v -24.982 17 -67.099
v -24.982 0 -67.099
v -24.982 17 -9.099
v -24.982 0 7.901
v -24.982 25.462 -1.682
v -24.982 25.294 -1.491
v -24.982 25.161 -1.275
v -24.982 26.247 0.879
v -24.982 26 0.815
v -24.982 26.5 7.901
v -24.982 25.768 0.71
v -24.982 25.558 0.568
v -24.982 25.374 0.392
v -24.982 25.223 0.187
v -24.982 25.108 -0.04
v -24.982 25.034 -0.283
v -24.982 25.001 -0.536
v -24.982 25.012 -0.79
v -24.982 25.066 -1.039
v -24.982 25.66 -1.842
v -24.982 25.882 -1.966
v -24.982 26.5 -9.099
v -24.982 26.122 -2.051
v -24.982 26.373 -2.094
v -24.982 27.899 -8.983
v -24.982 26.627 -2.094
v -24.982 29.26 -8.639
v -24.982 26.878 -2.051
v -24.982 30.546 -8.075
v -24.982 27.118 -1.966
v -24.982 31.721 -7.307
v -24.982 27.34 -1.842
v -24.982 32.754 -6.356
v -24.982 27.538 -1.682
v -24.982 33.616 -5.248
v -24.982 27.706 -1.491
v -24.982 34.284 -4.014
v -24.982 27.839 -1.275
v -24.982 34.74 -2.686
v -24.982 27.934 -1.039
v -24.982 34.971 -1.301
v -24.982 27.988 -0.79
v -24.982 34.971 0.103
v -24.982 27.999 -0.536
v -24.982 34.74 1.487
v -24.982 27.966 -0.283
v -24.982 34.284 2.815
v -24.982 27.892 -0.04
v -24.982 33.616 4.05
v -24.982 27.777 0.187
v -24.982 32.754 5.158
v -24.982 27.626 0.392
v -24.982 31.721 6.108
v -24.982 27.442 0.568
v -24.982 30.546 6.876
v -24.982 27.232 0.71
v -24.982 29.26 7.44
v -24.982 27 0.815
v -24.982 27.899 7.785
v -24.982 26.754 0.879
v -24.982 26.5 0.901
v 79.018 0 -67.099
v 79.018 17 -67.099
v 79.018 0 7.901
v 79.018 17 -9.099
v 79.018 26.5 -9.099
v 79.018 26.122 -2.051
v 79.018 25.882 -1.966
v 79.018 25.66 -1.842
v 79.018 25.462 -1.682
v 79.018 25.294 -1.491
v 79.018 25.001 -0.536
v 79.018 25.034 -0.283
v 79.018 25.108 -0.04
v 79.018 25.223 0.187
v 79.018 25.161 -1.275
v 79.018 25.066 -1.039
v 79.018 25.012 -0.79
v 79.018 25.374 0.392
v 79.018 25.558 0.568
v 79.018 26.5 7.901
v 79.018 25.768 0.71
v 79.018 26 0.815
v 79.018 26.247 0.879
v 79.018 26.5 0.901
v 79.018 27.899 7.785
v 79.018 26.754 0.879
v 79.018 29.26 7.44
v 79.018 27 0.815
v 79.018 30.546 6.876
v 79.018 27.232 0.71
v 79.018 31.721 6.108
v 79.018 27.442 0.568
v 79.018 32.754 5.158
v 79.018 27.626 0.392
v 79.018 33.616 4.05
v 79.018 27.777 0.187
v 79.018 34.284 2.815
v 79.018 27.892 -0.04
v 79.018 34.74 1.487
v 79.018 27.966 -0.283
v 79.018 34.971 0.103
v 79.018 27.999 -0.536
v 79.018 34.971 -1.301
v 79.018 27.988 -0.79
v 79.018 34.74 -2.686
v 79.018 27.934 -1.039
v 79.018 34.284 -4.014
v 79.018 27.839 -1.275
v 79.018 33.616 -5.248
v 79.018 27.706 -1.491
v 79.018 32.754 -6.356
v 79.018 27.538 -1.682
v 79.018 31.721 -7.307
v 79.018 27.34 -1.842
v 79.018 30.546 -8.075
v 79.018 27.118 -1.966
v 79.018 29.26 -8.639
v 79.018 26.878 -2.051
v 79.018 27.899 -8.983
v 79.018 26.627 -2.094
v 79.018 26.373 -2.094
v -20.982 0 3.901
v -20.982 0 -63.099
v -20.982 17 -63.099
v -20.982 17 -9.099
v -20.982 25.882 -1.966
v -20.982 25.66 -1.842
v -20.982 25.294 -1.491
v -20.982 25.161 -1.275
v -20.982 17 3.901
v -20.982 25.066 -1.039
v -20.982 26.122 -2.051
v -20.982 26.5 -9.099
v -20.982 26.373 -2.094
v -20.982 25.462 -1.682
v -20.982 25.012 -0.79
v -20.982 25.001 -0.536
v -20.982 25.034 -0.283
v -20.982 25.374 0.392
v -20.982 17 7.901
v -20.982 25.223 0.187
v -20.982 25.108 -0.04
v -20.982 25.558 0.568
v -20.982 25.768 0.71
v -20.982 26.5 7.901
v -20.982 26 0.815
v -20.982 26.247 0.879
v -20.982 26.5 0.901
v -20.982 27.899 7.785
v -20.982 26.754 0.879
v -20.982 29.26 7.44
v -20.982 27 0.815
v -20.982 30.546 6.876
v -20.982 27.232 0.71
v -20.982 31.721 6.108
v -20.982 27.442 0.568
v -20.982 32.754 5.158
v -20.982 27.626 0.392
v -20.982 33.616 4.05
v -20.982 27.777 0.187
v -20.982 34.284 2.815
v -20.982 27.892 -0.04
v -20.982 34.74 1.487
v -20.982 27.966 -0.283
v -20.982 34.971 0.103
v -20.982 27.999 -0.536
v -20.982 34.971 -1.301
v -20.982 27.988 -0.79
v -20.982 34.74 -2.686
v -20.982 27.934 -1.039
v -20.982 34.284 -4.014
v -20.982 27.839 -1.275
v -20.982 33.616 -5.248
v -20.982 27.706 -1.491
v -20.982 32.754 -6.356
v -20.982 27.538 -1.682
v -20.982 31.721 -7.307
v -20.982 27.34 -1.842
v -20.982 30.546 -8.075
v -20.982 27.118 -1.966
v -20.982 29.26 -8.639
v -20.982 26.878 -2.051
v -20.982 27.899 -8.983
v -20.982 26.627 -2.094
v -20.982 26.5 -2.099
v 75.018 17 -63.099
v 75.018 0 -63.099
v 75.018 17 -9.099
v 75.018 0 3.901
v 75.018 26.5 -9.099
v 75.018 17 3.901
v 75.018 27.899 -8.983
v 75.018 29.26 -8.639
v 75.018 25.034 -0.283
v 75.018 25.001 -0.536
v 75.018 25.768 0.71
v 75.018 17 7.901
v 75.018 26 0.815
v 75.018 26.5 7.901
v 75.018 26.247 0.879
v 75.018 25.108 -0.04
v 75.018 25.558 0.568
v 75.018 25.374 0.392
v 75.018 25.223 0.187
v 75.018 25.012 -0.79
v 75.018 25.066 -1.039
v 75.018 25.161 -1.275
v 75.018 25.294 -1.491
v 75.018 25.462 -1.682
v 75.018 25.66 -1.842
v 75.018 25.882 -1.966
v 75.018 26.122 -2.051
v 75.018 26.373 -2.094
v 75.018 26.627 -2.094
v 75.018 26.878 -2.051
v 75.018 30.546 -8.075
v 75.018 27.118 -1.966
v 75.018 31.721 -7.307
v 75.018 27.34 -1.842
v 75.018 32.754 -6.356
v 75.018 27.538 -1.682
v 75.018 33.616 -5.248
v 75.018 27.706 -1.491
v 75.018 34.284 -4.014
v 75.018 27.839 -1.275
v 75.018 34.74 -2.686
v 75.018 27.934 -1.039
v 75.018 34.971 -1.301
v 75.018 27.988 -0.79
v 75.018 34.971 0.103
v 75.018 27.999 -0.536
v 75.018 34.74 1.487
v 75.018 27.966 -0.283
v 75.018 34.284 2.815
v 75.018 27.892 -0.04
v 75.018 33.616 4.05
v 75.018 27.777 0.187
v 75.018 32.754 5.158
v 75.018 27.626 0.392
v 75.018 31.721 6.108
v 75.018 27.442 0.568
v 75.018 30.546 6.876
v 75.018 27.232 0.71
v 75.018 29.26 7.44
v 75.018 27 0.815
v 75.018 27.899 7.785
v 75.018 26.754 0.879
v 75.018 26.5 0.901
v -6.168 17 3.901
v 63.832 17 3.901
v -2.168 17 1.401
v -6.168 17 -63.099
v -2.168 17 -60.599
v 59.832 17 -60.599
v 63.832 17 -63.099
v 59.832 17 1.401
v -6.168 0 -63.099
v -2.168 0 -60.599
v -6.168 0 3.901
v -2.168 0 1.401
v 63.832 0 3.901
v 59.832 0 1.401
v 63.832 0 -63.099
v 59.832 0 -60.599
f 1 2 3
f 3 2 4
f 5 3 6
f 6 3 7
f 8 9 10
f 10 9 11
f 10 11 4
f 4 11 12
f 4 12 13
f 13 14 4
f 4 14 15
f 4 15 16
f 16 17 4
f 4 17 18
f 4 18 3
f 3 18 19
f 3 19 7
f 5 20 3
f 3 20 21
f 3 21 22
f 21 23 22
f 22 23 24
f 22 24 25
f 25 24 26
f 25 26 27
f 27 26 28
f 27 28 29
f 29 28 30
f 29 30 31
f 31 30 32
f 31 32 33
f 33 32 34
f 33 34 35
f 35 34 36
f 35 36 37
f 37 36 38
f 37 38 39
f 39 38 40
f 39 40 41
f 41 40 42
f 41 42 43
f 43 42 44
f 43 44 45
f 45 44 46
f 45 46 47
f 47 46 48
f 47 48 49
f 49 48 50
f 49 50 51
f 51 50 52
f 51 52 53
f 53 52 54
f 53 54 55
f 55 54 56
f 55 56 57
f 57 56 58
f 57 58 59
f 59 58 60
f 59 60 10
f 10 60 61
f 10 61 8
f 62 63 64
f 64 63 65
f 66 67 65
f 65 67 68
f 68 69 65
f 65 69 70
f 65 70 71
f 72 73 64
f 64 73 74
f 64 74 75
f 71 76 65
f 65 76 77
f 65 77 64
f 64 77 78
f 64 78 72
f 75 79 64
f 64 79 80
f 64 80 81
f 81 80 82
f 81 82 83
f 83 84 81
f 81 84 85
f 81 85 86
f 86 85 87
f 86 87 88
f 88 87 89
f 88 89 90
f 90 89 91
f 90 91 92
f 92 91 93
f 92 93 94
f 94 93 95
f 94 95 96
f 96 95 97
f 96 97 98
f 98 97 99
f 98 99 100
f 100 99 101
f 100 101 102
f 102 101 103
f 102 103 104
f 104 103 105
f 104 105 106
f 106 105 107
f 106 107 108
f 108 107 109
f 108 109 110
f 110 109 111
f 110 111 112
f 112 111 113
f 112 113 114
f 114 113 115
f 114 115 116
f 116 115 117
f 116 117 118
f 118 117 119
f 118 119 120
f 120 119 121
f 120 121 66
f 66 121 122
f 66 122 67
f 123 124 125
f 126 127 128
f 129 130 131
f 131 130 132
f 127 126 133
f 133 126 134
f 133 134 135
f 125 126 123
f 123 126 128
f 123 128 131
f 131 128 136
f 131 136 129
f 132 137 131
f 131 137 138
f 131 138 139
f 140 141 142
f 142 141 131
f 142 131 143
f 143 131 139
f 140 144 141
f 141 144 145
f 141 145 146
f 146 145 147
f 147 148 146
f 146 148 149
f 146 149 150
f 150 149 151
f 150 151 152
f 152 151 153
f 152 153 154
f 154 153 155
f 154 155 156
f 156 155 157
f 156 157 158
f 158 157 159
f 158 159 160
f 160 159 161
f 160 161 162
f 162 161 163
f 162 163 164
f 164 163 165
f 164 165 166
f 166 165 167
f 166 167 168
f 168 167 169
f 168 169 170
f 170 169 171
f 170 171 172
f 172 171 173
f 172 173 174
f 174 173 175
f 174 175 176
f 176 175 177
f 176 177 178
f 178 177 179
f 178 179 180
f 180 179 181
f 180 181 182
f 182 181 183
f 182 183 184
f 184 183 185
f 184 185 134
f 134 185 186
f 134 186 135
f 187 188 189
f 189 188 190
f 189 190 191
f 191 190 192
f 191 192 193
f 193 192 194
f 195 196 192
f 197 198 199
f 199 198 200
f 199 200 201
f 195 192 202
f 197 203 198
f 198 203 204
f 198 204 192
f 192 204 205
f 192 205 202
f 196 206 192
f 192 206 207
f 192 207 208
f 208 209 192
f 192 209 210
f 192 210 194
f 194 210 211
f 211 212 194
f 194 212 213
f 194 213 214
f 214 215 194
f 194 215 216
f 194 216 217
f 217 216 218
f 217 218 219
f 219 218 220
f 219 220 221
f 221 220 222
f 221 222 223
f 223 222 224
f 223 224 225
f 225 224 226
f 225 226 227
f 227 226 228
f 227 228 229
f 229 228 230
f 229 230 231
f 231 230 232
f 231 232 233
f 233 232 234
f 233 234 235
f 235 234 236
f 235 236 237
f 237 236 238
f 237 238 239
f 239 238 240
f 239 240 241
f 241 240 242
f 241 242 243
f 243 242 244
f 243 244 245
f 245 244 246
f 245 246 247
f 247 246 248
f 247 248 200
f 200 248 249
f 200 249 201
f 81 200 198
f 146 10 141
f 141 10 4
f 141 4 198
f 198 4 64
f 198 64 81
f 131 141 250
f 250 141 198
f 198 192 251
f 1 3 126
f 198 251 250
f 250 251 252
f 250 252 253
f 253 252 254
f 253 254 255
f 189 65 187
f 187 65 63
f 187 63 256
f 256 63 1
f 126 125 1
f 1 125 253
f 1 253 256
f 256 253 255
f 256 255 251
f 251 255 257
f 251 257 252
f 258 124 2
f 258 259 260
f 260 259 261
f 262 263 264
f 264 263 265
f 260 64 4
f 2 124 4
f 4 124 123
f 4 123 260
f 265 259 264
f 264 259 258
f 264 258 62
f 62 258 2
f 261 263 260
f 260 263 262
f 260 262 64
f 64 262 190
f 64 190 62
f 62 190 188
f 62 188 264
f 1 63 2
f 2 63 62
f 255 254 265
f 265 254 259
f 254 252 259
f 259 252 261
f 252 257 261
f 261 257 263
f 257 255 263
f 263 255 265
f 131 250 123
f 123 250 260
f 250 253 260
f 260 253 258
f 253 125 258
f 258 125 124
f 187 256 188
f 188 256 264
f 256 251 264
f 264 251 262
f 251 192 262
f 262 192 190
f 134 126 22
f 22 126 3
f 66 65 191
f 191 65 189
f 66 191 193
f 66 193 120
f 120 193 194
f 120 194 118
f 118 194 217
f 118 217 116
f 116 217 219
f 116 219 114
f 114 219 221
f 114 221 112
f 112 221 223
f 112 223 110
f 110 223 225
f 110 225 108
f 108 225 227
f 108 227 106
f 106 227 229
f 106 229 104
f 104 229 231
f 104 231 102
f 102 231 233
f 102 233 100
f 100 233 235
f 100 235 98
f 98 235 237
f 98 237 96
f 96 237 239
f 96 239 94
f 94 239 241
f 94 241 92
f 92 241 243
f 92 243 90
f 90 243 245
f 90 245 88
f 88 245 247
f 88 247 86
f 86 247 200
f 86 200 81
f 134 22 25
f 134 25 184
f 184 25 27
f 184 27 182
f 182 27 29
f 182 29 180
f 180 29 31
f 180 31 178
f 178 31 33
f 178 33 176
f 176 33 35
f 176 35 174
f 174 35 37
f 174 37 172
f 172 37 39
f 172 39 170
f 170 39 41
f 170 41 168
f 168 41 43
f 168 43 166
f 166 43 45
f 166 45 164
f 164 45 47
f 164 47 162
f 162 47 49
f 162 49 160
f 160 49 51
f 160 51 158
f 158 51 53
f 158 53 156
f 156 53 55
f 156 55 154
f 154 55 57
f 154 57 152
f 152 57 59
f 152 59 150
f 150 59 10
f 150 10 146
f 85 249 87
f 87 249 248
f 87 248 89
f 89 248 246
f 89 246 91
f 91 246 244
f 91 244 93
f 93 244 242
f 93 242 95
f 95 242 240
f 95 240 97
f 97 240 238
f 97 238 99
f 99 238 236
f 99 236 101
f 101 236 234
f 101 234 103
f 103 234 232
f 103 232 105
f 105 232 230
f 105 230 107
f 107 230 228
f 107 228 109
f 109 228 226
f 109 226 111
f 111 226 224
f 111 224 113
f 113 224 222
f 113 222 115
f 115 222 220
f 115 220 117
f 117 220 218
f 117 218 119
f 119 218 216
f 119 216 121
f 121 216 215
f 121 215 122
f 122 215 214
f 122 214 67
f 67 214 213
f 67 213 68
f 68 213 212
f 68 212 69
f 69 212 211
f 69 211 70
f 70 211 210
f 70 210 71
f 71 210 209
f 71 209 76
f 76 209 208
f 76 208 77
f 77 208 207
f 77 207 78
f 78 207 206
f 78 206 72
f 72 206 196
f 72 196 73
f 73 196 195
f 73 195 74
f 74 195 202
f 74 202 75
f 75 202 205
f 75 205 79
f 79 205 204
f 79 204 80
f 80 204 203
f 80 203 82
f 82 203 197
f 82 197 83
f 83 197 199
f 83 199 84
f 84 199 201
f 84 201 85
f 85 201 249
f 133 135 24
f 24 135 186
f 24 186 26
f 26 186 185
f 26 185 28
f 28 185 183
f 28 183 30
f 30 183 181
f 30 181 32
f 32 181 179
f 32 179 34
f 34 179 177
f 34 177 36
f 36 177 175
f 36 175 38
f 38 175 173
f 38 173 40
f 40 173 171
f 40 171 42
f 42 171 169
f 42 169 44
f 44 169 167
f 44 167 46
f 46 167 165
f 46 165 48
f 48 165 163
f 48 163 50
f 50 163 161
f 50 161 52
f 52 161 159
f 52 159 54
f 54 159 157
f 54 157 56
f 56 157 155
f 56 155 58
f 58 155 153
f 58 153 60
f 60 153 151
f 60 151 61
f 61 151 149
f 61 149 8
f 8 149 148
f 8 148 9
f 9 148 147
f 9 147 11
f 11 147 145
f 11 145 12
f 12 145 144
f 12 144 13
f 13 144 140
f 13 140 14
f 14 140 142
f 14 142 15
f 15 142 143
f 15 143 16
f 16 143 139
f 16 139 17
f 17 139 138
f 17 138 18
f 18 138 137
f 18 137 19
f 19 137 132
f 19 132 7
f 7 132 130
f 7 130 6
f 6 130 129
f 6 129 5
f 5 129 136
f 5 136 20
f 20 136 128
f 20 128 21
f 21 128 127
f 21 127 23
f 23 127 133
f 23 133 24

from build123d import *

# Parameters (mm, degrees)
SKETCH_1_W          = 104
SKETCH_1_H          = 75
SKETCH_1_W_2        = 14.813912832
SKETCH_1_H_2        = 67
SKETCH_1_W_3        = 62
SKETCH_1_H_3        = 62
SKETCH_1_W_4        = 11.186087168
EXTRUDE_3_DEPTH     = 17
SKETCH_3_W          = 4
SKETCH_3_H          = 17
EXTRUDE_4_DEPTH     = 18
SKETCH_4_R          = 1.5
CUT_EXTRUDE_2_DEPTH = 150


with BuildPart() as part:
    # 草图1 → 凸台-拉伸3 (new body)
    with BuildSketch(Plane(origin=(0, 0, 0), x_dir=(1, 0, 0), z_dir=(0, 1, 0))):
        with Locations((27.017596878, 29.599337879)):
            Rectangle(SKETCH_1_W, SKETCH_1_H)
        with Locations((-13.575446706, 29.599337879)):
            Rectangle(SKETCH_1_W_2, SKETCH_1_H_2, mode=Mode.SUBTRACT)
        with Locations((28.83150971, 29.599337879)):
            Rectangle(SKETCH_1_W_3, SKETCH_1_H_3, mode=Mode.SUBTRACT)
        with Locations((69.424553294, 29.599337879)):
            Rectangle(SKETCH_1_W_4, SKETCH_1_H_2, mode=Mode.SUBTRACT)
    extrude(amount=EXTRUDE_3_DEPTH)

    # 草图3 → 凸台-拉伸4 (add)
    with BuildSketch(Plane(origin=(0, 17, 0), x_dir=(1, 0, 0), z_dir=(0, 1, 0))):
        with Locations((-22.982403122, 0.599337879)):
            Rectangle(SKETCH_3_W, SKETCH_3_H)
        with Locations((77.017596878, 0.599337879)):
            Rectangle(SKETCH_3_W, SKETCH_3_H)
    extrude(amount=EXTRUDE_4_DEPTH)

    # 草图4 → 切除-拉伸2 (cut)
    with BuildSketch(Plane.ZY.offset(24.982403122)):
        with BuildLine():
            Line((-9.099337879, 35), (-9.099337879, 26.5))
            ThreePointArc((-9.099337879, 26.5), (-6.609745519, 32.51040764), (-0.599337879, 35))
            Line((-0.599337879, 35), (-9.099337879, 35))
        make_face()
        with BuildLine():
            Line((7.900662121, 35), (-0.599337879, 35))
            ThreePointArc((-0.599337879, 35), (5.411069761, 32.51040764), (7.900662121, 26.5))
            Line((7.900662121, 26.5), (7.900662121, 35))
        make_face()
        with Locations((-0.599337879, 26.5)):
            Circle(SKETCH_4_R)
    extrude(amount=-CUT_EXTRUDE_2_DEPTH, mode=Mode.SUBTRACT)


solid = part.part
